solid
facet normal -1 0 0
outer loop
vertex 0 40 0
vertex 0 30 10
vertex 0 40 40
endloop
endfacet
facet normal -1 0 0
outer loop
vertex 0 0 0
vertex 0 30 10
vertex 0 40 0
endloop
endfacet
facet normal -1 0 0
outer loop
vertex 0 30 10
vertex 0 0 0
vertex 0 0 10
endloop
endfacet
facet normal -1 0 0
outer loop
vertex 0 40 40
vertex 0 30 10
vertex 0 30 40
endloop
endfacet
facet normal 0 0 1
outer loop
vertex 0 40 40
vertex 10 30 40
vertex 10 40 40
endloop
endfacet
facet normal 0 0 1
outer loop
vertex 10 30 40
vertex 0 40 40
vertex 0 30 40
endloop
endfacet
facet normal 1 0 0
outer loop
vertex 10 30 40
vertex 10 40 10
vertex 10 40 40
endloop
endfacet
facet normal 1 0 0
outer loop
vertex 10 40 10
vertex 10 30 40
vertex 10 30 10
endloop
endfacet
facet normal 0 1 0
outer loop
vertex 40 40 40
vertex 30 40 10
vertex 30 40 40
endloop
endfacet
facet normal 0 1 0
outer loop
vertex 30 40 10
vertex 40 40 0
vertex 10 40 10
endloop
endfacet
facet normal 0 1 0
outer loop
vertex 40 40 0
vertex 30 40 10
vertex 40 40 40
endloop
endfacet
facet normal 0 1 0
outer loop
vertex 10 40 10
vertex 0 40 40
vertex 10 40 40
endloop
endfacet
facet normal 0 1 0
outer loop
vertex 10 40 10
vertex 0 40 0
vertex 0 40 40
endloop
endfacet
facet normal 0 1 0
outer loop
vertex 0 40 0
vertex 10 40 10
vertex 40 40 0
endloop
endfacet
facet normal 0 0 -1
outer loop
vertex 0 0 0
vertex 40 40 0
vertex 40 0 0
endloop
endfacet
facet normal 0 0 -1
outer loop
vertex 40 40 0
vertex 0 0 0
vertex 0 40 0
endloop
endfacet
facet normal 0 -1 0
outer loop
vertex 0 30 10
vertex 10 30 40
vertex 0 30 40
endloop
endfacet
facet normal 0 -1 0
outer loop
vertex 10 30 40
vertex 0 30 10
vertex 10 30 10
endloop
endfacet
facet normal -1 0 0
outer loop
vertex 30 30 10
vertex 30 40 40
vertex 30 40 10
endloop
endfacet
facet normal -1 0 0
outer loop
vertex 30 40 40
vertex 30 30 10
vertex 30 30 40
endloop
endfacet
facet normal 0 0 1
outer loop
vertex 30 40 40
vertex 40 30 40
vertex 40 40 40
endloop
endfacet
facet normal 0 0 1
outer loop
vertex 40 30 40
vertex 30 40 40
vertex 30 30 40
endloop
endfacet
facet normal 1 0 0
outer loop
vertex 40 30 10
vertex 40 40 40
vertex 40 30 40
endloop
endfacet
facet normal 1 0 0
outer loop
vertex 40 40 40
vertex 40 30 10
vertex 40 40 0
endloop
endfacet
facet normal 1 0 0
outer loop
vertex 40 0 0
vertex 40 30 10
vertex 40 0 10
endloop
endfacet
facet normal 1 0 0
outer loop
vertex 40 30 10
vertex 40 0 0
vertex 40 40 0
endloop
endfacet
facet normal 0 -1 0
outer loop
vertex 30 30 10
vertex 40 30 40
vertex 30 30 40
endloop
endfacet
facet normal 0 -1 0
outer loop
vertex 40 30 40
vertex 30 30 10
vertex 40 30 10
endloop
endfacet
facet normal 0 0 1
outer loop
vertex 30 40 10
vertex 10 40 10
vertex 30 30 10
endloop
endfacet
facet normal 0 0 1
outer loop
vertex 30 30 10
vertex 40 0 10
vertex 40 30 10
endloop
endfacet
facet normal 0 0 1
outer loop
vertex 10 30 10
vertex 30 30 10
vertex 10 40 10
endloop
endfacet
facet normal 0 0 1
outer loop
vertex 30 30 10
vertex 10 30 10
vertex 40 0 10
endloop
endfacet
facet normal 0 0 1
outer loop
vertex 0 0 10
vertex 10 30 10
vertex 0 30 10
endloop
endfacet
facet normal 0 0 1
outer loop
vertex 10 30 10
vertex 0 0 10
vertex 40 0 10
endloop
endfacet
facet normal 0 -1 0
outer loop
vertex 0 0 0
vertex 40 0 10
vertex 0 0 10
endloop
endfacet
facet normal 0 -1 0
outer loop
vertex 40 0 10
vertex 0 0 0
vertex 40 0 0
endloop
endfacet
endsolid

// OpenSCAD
difference(){
union(){
//lateral
translate([0,30,0])
cube([10,10,40]);
// pared fondo
translate([30,30,0])
cube([10,10,40]);
// base
cube([40,40,10]);
}
}
